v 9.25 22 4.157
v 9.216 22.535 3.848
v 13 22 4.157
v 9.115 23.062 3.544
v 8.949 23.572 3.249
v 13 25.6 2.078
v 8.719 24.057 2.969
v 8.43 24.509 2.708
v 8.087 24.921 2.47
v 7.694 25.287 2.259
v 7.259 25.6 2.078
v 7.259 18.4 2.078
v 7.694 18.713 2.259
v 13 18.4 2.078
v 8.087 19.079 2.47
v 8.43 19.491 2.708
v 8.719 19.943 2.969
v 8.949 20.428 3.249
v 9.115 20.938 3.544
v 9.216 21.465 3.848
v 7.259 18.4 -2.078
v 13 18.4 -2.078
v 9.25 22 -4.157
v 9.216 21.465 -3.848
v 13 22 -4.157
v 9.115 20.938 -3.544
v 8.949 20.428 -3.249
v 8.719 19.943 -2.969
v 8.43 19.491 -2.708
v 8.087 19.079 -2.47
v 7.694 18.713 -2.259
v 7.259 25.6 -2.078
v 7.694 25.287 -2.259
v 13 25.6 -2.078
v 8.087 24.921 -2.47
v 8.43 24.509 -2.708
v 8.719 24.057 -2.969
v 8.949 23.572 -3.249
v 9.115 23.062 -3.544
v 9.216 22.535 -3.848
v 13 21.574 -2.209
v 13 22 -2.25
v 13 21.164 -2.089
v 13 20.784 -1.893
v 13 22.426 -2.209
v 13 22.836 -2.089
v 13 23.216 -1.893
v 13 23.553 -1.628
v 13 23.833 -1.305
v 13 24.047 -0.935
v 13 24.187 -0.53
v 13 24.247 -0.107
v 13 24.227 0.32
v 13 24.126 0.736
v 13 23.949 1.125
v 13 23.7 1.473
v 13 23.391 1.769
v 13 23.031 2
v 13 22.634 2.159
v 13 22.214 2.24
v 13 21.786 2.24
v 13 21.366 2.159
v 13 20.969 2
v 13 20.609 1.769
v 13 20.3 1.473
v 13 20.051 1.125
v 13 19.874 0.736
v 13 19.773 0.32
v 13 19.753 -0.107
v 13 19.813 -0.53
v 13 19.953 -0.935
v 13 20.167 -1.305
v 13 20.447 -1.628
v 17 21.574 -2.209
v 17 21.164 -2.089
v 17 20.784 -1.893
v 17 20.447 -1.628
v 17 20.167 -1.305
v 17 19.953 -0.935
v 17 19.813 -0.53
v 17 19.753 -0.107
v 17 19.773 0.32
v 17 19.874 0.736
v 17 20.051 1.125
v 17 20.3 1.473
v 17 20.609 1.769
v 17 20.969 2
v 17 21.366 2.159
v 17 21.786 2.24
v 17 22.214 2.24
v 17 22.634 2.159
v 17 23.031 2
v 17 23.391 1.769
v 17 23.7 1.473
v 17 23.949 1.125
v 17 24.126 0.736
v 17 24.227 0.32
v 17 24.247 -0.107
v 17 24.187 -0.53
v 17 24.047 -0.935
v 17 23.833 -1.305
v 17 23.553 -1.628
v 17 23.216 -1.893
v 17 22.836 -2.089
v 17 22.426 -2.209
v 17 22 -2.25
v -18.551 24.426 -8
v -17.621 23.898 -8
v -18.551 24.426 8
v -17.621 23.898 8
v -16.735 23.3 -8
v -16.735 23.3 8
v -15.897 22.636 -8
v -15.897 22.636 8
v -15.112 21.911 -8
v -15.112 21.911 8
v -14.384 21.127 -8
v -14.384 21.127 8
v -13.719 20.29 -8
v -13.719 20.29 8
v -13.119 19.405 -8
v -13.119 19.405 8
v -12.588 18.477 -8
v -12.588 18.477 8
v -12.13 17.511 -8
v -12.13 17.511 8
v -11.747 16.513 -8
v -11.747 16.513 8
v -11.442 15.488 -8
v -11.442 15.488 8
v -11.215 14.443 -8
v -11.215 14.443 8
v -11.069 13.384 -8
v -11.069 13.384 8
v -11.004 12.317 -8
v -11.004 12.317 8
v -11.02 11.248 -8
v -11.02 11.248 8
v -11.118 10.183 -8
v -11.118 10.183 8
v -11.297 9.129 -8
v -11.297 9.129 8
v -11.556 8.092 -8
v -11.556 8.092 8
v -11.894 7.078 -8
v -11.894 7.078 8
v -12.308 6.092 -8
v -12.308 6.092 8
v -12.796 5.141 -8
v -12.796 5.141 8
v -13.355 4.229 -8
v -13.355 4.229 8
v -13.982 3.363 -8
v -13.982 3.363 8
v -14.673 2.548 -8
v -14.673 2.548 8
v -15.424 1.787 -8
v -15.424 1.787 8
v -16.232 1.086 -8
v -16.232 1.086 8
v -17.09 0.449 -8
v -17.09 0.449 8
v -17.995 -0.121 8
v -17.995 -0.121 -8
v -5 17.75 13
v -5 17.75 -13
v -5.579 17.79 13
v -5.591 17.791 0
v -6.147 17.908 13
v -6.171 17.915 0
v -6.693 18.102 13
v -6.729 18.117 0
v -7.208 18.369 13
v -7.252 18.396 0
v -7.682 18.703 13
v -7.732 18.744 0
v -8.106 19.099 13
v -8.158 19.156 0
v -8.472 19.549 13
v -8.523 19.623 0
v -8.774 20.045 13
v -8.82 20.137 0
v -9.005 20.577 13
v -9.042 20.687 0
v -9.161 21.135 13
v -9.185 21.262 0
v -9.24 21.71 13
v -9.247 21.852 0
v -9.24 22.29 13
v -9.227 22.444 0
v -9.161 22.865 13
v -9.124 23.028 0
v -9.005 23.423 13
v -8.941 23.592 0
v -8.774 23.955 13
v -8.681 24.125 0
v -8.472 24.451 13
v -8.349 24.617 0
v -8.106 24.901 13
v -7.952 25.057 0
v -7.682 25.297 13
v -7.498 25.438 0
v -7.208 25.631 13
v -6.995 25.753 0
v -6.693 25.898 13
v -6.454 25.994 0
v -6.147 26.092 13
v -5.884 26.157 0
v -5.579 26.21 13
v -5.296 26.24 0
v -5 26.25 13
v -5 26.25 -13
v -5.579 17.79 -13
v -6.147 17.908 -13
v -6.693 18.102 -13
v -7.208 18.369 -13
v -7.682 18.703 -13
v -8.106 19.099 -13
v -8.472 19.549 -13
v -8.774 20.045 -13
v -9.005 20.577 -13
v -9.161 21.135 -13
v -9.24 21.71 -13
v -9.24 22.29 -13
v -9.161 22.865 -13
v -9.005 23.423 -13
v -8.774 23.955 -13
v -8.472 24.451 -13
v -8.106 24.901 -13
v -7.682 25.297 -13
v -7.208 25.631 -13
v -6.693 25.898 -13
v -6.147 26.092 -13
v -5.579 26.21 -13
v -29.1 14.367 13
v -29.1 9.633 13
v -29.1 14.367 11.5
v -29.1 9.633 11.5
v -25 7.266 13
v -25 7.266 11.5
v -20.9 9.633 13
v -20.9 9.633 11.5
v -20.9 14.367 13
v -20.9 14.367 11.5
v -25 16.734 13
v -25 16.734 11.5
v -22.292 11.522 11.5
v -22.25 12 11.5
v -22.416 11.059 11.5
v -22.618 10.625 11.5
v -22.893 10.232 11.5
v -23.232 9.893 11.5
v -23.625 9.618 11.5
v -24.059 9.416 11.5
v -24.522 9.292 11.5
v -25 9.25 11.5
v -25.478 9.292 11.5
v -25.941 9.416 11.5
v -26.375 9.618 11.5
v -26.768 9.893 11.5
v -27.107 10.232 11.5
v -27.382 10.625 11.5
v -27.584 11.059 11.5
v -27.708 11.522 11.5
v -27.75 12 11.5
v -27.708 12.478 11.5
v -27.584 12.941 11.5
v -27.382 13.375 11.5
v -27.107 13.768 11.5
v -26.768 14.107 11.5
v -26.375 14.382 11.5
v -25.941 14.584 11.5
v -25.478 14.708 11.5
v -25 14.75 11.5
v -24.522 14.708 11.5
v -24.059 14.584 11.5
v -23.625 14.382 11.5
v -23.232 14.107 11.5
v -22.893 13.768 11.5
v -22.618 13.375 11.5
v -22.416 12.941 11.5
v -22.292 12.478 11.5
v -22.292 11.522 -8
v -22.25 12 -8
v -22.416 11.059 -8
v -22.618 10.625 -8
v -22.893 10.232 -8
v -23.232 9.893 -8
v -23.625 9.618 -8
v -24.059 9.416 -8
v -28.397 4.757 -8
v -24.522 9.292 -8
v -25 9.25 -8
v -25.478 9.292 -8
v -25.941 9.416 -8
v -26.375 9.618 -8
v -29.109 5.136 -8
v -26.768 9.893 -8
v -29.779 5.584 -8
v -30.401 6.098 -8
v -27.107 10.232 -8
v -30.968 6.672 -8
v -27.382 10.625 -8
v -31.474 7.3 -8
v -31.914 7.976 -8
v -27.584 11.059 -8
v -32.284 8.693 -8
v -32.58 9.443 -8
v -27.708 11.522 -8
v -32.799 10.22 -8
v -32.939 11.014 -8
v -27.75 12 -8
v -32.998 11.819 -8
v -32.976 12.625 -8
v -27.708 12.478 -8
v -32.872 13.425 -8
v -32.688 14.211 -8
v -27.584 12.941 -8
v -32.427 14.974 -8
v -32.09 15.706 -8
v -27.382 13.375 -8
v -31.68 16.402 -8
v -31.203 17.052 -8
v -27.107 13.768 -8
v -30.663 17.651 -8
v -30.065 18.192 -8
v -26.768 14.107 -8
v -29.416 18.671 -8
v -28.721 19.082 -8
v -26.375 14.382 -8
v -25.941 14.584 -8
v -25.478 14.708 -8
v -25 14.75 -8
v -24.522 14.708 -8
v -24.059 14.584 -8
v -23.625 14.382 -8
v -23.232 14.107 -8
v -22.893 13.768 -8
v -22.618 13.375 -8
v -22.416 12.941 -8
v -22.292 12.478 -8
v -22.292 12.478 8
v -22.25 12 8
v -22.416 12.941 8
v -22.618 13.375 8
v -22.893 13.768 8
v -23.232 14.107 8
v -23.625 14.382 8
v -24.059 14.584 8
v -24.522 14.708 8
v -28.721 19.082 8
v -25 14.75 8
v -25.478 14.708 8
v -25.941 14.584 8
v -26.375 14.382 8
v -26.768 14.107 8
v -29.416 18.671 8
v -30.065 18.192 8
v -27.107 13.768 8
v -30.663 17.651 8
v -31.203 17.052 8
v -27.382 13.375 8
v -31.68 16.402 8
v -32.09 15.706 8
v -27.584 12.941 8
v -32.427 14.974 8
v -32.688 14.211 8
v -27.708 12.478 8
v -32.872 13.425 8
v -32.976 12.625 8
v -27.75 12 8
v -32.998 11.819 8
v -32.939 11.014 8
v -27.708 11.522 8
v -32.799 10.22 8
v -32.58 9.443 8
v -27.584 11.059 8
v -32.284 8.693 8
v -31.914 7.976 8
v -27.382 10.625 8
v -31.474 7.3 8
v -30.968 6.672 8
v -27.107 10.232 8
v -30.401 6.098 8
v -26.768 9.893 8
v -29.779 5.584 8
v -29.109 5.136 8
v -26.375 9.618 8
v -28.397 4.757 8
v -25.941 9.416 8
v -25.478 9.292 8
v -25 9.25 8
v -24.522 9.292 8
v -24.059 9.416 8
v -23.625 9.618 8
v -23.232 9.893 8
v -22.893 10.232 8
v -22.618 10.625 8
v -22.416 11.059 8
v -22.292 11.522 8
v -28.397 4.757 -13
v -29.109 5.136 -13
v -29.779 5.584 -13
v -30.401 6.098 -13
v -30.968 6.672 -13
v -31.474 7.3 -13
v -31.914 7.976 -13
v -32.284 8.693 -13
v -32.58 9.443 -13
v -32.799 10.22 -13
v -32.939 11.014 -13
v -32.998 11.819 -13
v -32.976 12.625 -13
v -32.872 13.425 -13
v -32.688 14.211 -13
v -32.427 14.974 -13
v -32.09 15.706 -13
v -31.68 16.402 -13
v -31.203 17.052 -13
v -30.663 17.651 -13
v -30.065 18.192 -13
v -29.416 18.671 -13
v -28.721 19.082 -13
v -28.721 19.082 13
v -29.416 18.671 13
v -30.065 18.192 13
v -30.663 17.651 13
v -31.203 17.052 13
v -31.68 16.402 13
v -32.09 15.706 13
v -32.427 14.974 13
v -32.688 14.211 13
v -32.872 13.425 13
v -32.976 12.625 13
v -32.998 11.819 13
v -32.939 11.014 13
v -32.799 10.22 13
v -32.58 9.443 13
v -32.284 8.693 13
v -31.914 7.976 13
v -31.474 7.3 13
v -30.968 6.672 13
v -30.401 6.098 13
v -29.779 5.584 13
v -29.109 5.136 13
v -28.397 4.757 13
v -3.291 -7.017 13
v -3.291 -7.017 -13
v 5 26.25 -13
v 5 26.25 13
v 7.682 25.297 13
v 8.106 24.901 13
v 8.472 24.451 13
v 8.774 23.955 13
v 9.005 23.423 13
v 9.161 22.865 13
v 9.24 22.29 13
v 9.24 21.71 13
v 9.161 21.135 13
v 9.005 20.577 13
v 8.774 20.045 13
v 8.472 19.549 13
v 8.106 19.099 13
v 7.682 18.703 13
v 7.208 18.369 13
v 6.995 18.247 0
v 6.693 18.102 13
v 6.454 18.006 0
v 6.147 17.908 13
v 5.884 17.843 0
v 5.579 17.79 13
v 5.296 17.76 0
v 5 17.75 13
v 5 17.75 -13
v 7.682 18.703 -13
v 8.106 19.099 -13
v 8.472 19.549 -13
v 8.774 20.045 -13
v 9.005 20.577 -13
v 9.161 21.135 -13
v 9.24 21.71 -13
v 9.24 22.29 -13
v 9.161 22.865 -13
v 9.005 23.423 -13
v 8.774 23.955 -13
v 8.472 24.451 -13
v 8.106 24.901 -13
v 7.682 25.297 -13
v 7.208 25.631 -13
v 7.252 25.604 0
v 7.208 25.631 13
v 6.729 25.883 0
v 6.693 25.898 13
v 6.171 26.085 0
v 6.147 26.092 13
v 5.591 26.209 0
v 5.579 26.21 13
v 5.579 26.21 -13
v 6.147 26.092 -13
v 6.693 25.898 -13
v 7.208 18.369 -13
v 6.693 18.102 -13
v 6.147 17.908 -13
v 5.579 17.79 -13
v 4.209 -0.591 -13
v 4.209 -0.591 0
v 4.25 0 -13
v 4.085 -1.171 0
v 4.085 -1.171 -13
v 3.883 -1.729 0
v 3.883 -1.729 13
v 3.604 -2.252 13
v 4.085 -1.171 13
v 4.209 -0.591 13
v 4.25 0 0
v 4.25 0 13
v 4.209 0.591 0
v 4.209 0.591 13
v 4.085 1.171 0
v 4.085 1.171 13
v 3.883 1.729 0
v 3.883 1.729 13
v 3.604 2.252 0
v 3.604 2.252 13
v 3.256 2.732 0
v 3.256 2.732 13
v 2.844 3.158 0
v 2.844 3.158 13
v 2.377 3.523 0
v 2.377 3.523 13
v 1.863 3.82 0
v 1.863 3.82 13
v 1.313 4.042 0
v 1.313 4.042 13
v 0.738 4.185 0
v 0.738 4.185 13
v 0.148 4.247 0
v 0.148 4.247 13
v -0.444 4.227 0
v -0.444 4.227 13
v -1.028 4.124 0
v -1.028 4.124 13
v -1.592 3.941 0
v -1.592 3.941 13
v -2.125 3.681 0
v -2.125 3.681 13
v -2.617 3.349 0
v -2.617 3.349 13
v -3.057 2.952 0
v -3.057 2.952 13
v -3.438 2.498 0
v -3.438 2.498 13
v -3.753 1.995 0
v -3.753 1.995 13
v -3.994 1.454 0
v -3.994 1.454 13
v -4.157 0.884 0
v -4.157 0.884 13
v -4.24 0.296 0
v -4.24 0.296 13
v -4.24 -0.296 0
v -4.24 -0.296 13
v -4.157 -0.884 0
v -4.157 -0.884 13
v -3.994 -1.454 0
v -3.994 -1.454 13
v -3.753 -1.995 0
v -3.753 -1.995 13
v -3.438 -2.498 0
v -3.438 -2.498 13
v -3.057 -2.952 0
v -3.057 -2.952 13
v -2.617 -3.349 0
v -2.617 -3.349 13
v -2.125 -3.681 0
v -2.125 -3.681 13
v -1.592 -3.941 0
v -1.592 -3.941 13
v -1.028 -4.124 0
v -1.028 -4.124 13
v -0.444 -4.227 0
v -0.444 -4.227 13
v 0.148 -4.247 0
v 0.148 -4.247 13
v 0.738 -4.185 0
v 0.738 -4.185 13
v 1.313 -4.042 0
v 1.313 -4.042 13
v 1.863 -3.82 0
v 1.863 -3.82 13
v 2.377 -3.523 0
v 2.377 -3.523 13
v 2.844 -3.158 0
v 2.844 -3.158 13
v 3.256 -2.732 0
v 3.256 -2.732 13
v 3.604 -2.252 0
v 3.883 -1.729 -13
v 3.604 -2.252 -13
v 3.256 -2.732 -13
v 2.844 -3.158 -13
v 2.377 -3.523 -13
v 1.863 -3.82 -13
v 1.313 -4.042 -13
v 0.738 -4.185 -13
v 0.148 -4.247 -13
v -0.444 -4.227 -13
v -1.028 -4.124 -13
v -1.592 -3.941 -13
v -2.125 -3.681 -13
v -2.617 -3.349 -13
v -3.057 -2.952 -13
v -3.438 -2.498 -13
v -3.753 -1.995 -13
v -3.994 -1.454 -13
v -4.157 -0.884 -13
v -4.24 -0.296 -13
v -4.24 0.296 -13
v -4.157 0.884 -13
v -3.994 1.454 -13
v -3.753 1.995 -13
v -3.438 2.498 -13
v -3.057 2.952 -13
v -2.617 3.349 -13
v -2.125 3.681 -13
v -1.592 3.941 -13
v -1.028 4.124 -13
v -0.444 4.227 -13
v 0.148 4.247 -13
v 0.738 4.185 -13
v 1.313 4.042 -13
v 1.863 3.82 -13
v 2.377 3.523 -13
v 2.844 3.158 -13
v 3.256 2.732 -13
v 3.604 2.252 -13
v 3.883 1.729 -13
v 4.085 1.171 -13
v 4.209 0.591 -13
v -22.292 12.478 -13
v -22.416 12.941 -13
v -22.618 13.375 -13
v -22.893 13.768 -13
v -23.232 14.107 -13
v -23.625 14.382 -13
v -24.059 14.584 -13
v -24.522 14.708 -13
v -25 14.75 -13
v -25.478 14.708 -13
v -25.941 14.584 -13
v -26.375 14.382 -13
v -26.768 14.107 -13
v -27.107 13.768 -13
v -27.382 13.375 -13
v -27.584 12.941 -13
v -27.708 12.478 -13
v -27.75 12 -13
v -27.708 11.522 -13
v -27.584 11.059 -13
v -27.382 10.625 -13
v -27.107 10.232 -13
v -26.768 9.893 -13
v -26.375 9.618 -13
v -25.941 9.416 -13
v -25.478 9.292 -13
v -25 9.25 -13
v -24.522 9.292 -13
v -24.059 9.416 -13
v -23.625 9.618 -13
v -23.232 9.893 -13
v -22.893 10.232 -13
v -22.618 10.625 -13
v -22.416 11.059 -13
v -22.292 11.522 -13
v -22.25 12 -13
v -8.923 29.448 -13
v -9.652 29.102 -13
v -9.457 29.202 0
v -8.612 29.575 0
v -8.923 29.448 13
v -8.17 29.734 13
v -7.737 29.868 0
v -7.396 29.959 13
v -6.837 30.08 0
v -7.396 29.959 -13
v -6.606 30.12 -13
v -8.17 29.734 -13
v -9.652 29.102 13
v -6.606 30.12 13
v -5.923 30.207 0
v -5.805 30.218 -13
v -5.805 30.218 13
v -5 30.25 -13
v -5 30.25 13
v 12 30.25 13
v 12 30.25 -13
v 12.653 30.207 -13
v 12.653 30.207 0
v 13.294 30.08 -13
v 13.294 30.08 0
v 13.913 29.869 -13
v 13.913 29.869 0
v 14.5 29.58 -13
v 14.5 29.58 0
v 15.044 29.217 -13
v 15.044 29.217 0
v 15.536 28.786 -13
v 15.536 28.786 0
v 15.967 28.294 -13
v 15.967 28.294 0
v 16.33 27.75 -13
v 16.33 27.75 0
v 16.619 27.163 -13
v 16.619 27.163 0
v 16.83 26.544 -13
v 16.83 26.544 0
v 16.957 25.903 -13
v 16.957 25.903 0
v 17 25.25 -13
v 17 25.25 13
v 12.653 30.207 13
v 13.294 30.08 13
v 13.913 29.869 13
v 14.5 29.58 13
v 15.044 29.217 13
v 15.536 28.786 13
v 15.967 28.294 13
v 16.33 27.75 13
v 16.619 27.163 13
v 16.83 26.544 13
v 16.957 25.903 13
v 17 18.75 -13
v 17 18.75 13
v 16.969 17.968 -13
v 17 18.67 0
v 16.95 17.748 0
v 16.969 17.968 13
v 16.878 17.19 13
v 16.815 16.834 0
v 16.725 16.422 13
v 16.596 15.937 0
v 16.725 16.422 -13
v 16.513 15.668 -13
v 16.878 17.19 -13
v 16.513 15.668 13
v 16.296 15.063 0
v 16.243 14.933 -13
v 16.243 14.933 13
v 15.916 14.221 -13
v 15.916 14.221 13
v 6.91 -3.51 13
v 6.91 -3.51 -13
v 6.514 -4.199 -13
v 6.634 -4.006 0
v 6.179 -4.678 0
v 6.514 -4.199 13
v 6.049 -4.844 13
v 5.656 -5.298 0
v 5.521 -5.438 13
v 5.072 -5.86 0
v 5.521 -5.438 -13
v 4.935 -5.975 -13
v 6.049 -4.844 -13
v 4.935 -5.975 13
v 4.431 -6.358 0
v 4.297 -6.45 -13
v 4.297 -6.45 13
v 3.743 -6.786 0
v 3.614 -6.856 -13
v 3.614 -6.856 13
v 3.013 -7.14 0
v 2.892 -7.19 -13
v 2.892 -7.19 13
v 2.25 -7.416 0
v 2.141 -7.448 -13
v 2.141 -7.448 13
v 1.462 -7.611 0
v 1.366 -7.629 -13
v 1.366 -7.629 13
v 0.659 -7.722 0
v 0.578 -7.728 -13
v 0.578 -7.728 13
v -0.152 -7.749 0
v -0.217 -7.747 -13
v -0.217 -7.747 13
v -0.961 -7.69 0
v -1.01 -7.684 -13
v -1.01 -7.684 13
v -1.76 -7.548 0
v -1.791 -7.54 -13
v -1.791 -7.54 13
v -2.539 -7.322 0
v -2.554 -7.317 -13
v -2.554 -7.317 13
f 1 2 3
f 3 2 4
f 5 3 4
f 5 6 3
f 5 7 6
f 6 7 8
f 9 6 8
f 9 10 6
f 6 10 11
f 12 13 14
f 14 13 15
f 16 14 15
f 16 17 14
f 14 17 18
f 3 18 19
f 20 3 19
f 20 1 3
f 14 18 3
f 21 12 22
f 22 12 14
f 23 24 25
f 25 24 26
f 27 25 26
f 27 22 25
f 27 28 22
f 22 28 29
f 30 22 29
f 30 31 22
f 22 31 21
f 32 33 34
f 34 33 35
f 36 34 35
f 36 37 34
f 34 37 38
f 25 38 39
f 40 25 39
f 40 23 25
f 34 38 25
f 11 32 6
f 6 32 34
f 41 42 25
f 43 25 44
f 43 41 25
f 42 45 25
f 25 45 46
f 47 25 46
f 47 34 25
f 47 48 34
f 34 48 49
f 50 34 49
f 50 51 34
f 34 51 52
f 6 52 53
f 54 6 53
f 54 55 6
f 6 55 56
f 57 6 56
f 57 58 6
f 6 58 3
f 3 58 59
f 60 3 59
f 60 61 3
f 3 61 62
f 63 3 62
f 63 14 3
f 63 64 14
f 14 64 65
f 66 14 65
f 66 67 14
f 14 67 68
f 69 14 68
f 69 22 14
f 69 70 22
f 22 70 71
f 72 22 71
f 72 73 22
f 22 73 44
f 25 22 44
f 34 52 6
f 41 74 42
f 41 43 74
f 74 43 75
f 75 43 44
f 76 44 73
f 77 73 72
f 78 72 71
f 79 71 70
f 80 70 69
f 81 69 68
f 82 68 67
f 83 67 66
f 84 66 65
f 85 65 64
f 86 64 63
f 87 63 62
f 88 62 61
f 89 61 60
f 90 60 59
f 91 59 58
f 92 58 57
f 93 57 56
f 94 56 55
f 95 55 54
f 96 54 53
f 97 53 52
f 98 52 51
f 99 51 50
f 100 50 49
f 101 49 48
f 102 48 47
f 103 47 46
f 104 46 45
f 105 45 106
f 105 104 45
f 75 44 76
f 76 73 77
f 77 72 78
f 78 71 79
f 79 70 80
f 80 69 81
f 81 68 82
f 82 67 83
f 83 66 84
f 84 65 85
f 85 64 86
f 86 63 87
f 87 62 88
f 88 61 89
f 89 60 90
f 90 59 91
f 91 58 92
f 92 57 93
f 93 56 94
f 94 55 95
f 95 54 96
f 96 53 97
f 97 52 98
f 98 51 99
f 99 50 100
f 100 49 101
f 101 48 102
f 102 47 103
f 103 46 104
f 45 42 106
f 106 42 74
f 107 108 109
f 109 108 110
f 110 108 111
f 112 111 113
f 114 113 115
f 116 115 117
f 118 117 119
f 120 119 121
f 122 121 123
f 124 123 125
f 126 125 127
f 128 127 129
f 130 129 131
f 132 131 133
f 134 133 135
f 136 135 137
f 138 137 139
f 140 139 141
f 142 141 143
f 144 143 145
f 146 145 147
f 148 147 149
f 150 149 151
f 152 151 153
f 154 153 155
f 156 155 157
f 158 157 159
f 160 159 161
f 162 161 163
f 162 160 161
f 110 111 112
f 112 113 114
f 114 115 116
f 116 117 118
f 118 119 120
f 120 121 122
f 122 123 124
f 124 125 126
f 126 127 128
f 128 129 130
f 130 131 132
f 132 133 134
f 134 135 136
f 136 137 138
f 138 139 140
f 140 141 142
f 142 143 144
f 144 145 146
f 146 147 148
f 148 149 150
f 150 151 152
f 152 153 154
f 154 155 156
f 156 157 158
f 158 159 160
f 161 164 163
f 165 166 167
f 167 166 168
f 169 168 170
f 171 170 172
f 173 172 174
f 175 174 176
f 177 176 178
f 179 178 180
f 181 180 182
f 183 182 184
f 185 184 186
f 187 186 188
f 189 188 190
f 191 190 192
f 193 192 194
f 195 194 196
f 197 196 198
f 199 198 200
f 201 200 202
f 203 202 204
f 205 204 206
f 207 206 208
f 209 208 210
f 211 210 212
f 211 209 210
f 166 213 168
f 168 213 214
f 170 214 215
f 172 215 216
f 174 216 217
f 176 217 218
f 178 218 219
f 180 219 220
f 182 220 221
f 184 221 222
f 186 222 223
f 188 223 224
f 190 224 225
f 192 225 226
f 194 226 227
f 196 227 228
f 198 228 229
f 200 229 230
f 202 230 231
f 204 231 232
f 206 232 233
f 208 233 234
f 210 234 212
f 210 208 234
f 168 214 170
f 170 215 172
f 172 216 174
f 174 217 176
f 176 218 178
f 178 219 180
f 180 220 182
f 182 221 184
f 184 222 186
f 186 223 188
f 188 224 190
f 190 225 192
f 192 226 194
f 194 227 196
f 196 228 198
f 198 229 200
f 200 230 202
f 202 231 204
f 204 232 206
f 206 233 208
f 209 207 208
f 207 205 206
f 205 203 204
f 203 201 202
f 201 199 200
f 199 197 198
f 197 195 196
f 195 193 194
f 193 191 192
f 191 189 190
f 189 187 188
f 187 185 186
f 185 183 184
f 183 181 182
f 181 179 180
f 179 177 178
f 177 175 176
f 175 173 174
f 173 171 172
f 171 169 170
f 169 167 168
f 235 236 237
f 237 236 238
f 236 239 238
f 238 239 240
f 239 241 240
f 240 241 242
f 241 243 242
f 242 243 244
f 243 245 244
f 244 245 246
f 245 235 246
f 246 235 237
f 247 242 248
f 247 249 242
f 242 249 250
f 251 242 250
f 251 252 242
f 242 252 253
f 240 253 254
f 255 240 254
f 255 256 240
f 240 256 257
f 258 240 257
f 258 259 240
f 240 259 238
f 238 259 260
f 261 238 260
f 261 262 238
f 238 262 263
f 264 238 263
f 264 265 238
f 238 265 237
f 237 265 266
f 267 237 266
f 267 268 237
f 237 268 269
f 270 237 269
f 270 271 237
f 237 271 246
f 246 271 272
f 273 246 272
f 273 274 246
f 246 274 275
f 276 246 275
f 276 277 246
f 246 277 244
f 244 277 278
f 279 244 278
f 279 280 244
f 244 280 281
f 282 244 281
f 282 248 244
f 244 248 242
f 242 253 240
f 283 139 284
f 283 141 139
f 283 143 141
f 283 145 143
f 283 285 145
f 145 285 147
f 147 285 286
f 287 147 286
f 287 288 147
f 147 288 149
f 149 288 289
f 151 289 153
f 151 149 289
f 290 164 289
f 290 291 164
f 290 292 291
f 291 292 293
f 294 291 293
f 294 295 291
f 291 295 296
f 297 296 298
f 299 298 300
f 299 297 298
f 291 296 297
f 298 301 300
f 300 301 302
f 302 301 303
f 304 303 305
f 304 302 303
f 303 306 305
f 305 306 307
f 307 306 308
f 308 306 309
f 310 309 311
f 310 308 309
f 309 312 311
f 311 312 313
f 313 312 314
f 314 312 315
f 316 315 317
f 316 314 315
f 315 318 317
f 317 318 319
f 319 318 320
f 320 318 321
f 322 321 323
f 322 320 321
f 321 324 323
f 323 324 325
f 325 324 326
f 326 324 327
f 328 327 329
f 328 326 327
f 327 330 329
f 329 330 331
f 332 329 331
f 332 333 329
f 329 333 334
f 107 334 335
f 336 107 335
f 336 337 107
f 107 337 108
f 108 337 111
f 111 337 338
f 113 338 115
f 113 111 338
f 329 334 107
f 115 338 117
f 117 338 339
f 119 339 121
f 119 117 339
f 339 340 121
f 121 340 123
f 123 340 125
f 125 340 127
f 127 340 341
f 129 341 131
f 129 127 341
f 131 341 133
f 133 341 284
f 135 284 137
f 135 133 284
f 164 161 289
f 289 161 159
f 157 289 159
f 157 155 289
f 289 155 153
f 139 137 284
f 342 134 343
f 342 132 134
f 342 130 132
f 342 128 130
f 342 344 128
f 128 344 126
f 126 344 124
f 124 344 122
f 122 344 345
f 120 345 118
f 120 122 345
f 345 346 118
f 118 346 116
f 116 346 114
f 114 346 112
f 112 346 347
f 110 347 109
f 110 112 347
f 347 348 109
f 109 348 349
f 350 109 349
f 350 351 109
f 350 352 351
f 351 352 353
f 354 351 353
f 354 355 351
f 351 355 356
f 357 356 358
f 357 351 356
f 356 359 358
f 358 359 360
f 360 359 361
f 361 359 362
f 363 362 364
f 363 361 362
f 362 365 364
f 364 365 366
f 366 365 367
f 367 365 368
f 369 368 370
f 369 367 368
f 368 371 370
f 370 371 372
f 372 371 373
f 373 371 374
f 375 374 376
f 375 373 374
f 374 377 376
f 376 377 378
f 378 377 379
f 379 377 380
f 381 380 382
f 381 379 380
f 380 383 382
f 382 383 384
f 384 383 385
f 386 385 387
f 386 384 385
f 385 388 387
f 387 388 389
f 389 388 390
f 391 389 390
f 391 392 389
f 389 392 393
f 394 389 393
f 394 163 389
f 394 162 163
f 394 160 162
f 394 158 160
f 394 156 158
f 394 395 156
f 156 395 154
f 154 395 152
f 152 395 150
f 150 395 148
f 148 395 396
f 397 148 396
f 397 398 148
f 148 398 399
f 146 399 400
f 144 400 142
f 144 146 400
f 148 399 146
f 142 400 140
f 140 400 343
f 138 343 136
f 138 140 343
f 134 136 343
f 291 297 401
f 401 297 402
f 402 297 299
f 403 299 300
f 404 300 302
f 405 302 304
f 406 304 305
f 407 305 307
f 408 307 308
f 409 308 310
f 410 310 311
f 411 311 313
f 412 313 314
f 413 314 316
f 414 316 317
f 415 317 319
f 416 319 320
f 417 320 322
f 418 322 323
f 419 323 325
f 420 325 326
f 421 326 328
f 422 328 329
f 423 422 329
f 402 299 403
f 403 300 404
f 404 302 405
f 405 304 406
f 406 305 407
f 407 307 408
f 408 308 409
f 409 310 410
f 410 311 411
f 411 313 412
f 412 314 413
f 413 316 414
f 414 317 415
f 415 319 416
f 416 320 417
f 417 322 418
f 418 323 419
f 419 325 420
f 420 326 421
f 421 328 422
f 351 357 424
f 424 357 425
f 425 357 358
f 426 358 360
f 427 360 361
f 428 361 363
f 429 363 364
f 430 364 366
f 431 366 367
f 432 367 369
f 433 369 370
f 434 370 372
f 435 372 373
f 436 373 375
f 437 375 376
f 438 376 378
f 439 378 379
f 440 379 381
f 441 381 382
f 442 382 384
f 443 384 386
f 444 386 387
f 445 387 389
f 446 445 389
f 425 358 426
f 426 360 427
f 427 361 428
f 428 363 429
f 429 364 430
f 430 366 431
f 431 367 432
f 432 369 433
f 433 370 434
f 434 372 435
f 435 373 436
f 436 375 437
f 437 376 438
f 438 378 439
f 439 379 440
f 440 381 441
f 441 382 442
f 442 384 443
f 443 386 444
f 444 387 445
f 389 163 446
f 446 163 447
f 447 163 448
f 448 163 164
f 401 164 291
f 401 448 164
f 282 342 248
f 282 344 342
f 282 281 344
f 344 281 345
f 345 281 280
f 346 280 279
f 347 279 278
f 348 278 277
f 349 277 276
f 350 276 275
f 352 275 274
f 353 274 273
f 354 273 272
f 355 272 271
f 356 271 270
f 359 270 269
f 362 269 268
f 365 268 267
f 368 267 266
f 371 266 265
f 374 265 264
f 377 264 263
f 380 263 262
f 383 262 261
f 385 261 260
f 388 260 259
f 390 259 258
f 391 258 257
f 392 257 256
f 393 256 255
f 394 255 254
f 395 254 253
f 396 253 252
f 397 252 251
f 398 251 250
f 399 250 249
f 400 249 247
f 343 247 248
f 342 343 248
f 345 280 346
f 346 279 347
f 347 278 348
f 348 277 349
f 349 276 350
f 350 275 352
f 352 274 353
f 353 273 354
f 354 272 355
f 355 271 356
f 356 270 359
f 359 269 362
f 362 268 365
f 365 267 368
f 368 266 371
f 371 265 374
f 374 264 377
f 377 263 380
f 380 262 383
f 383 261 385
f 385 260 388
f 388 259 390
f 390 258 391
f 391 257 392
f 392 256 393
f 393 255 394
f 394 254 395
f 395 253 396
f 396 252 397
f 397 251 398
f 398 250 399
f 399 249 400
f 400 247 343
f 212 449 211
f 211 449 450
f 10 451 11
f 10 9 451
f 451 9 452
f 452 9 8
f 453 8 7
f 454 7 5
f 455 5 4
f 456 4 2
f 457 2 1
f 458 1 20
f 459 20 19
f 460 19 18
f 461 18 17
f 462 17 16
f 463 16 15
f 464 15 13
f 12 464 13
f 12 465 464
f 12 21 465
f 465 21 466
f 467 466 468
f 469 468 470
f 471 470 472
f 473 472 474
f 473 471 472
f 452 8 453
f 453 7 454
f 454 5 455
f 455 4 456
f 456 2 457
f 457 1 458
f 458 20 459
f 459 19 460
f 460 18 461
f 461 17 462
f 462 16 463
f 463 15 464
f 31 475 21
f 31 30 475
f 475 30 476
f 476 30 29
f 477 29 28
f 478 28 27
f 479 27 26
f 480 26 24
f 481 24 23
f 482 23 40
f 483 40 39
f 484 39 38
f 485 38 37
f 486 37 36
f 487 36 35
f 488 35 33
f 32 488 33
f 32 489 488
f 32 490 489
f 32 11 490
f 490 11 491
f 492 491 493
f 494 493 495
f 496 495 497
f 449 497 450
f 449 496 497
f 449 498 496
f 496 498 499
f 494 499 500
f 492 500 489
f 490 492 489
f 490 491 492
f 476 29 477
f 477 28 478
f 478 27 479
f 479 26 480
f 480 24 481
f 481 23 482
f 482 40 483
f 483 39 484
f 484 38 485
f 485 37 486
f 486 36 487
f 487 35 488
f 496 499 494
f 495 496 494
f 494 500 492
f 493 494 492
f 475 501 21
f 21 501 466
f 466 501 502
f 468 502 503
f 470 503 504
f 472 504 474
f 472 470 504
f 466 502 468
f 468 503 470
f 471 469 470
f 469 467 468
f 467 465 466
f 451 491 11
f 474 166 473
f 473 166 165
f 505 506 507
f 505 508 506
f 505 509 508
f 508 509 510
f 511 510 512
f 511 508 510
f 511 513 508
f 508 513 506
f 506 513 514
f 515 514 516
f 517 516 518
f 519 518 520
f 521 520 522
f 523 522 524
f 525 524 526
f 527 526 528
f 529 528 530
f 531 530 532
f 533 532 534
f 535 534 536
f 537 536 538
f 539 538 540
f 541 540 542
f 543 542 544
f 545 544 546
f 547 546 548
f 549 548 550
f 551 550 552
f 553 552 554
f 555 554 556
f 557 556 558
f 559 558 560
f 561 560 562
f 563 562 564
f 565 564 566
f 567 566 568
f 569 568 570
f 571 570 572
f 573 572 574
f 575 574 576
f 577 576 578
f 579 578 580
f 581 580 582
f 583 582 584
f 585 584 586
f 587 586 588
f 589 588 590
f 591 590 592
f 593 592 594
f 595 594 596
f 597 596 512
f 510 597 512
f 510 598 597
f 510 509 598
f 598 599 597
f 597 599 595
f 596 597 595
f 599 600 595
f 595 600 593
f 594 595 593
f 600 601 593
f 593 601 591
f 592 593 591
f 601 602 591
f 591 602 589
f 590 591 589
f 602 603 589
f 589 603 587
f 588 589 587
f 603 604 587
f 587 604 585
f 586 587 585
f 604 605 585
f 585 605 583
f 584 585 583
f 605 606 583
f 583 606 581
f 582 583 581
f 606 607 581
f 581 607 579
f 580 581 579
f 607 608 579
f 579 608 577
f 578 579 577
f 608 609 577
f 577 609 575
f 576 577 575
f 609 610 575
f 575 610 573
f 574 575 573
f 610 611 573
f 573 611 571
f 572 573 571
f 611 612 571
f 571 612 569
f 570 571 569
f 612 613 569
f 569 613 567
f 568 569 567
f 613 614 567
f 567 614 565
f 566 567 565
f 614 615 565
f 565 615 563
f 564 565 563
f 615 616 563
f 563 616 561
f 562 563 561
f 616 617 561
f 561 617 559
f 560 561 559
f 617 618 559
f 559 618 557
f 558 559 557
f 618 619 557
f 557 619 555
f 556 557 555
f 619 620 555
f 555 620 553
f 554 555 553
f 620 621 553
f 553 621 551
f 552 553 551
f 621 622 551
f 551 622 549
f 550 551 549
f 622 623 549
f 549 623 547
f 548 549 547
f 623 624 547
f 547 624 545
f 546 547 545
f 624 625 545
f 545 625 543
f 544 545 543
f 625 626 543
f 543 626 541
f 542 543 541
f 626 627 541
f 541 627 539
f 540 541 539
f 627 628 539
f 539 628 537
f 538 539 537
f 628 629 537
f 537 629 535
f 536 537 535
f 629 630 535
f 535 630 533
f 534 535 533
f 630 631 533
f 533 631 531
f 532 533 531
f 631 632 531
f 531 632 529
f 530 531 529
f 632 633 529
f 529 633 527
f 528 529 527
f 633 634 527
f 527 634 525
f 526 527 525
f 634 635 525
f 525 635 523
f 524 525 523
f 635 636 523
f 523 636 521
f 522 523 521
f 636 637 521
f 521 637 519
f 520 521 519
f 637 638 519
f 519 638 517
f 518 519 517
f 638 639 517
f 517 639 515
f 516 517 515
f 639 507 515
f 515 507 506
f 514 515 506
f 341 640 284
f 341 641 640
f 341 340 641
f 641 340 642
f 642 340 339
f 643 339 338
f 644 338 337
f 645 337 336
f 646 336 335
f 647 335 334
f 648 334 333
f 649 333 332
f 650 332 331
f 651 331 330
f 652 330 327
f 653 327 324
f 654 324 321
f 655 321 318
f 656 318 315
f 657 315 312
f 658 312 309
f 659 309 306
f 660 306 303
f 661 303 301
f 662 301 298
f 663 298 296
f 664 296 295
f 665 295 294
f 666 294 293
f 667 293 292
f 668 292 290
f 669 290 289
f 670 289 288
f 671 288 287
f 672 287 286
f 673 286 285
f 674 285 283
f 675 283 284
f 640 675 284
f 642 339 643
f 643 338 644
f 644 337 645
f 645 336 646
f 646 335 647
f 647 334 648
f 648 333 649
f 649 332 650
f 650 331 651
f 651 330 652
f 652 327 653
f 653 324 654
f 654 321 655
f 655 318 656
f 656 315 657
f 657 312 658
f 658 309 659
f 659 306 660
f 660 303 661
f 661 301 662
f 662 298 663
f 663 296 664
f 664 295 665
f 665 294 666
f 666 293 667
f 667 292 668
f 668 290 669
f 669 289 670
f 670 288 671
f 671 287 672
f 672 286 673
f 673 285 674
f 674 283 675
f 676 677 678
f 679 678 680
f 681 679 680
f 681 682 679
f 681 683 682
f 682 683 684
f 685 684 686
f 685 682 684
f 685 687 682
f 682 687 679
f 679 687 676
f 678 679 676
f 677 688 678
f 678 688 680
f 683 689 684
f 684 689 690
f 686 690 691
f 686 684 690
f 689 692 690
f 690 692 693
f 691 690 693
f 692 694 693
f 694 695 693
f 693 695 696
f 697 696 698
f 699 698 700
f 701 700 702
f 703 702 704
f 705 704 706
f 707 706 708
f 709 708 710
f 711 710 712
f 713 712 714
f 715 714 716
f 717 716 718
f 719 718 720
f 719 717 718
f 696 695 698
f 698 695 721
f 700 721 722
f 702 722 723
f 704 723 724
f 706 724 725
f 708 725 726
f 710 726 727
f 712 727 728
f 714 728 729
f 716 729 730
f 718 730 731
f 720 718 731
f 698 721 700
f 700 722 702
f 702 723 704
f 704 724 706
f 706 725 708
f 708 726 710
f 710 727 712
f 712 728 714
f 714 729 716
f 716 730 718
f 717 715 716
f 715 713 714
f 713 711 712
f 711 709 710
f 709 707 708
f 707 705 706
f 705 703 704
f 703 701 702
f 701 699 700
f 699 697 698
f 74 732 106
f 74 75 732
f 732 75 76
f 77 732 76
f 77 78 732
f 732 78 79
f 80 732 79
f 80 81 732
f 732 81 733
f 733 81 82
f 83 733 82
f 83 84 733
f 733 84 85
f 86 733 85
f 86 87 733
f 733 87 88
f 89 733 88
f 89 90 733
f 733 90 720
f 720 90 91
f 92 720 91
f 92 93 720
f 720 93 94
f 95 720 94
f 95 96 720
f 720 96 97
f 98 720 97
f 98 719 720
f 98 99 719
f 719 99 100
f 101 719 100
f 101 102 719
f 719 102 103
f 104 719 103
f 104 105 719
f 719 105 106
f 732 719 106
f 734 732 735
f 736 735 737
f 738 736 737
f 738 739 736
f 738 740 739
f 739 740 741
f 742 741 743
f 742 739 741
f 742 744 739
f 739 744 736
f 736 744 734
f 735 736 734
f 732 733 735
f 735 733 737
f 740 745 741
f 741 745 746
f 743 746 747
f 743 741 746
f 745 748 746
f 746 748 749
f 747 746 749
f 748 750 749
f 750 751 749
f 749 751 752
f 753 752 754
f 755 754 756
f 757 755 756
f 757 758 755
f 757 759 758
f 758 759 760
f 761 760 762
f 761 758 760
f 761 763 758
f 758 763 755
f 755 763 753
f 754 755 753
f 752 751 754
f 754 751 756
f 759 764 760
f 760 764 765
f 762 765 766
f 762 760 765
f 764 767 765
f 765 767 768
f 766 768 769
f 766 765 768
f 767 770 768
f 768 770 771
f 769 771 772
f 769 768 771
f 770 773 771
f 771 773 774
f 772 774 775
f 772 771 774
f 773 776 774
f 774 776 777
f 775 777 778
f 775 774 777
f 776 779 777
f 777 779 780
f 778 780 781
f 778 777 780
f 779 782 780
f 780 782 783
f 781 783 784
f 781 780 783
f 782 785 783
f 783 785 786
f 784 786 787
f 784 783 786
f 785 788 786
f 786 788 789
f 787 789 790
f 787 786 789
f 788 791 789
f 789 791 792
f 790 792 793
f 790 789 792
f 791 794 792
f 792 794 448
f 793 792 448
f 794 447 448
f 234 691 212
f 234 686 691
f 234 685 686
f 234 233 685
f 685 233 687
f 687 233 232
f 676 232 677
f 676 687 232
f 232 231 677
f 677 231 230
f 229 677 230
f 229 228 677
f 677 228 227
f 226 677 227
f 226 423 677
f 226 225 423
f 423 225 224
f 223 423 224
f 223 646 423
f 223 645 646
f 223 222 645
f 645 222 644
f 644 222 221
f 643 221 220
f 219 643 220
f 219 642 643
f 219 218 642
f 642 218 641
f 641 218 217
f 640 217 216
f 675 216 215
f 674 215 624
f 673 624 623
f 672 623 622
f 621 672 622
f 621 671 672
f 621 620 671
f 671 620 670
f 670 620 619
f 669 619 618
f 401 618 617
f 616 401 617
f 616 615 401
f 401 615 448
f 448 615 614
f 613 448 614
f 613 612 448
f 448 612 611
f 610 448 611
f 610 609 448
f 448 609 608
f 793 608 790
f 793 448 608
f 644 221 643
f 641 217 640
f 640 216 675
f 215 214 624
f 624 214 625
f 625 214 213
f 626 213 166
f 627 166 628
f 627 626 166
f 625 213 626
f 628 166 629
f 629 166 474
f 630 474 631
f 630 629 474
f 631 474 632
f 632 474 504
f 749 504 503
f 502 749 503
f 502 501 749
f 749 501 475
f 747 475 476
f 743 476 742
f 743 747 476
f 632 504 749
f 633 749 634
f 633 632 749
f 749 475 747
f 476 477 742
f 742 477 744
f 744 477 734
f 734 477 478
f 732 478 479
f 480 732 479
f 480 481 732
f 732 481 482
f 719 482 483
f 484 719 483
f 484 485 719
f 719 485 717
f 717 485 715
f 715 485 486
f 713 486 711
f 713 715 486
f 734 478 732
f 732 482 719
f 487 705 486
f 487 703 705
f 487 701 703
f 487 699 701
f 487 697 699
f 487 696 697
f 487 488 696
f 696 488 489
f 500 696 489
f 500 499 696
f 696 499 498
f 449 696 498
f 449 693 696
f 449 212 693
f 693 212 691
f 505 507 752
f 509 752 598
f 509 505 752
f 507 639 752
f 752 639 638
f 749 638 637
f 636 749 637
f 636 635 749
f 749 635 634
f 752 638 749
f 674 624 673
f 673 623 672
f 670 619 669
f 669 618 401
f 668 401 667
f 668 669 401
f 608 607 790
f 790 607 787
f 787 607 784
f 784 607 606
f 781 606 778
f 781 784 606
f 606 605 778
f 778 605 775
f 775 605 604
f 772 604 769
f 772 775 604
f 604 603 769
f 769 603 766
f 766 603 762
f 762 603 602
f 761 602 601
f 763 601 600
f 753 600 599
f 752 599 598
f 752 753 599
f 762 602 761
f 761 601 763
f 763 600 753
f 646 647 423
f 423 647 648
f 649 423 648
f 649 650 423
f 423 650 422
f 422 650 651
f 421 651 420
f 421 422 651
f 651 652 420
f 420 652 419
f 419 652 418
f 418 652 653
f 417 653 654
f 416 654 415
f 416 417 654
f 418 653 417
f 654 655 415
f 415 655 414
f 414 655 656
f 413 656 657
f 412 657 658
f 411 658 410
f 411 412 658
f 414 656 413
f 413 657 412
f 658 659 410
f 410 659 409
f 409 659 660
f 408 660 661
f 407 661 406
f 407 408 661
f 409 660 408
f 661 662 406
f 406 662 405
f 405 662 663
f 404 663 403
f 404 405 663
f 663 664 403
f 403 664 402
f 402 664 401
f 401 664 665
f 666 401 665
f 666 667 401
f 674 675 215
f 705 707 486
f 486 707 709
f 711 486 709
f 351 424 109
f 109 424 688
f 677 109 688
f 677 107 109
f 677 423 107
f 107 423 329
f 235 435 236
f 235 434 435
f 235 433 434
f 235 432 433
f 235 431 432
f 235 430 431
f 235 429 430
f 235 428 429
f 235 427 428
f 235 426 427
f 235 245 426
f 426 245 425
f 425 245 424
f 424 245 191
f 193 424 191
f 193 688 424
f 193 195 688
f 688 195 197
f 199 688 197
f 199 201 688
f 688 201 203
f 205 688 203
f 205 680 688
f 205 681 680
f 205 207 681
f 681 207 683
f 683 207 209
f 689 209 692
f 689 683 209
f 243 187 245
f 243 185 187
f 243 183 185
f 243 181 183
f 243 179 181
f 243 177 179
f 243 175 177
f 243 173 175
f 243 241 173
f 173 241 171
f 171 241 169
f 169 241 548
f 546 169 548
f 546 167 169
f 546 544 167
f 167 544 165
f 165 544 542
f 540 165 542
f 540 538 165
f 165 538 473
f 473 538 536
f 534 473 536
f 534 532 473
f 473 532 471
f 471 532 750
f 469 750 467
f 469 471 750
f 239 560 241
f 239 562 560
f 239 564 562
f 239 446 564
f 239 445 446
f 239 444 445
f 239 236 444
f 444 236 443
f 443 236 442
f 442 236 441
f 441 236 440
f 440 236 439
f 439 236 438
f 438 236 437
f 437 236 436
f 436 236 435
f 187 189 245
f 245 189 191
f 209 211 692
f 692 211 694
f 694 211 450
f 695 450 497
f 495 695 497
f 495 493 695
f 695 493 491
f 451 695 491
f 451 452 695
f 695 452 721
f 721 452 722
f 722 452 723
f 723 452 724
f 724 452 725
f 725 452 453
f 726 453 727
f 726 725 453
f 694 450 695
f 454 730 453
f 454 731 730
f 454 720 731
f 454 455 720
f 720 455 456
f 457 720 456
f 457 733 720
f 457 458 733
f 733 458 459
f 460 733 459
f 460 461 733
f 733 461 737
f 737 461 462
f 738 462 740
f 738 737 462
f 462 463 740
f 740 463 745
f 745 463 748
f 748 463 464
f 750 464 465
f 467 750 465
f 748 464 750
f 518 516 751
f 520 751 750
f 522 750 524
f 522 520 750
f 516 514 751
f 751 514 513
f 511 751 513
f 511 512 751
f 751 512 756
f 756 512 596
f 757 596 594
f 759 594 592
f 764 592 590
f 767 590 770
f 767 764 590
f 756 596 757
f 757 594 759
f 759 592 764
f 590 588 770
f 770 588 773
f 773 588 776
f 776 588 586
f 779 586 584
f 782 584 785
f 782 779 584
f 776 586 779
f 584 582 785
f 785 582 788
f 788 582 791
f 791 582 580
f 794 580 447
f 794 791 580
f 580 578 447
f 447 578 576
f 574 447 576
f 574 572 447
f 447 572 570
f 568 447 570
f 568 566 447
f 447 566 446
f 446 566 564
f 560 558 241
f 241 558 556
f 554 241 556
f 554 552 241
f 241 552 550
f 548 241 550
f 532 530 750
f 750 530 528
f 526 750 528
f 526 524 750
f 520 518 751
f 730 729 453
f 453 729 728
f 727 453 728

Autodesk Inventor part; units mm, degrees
ref_plane "YZ Plane" through (0, 0, 0) normal (1, 0, 0) x (0, 1, 0)
ref_plane "XZ Plane" through (0, 0, 0) normal (0, 1, 0) x (-1, 0, 0)
sketch "Szkic1" plane through (0, 0, 0) normal (0, 0, 1) x (1, 0, 0)
  circle A0 centre (0, 0) radius 4.25
  line L0 (0, 0) -> (0, 22) construction
  line L1 (-5, 22) -> (5, 22) construction
  line L2 (-5, 17.75) -> (5, 17.75)
  arc A1 (5, 17.75) -> (5, 26.25) centre (5, 22) ccw
  line L3 (5, 26.25) -> (-5, 26.25)
  arc A2 (-5, 26.25) -> (-5, 17.75) centre (-5, 22) ccw
  circle A3 centre (-25, 12) radius 8 construction
  line L4 (-5, 22) -> (-25, 22) construction
  line L5 (-25, 22) -> (-25, 12) construction
  circle A4 centre (-25, 12) radius 2.75
  line L6 (-9.6516, 29.1023) -> (-28.7213, 19.0818)
  arc A5 (-28.7213, 19.0818) -> (-28.3967, 4.7569) centre (-25, 12) ccw
  line L7 (-28.3967, 4.7569) -> (-3.2905, -7.0168)
  arc A6 (-3.2905, -7.0168) -> (6.9098, -3.5096) centre (0, 0) ccw
  line L8 (6.9098, -3.5096) -> (15.9158, 14.2214)
  arc A7 (15.9158, 14.2214) -> (17, 18.75) centre (7, 18.75) ccw
  line L9 (17, 18.75) -> (17, 25.25)
  arc A8 (17, 25.25) -> (12, 30.25) centre (12, 25.25) ccw
  line L10 (12, 30.25) -> (-5, 30.25)
  arc A9 (-5, 30.25) -> (-9.6516, 29.1023) centre (-5, 20.25) ccw
  line L11 (-25, 16.7343) -> (-20.9, 14.3671) construction
  line L12 (-20.9, 14.3671) -> (-20.9, 9.6329) construction
  line L13 (-20.9, 9.6329) -> (-25, 7.2657) construction
  line L14 (-25, 7.2657) -> (-29.1, 9.6329) construction
  line L15 (-29.1, 9.6329) -> (-29.1, 14.3671) construction
  line L16 (-29.1, 14.3671) -> (-25, 16.7343) construction
  line L17 (-5, 22) -> (-5, 30.25) construction
  circle A10 centre (-25, 12) radius 14 construction
  arc A11 (-17.9946, -0.1212) -> (-18.5508, 24.4261) centre (-25, 12) ccw
  dimension "d16" = 28
  dimension "d0" = 8.5
  dimension "d1" = 22
  dimension "d2" = 10
  dimension "d3" = 4.25
  dimension "d4" = 16
  dimension "d5" = 10
  dimension "d6" = 20
  dimension "d7" = 5.5
  dimension "d8" = 12
  dimension "d9" = 4
  dimension "d10" = 7.75
  dimension "d11" = 8.2
  dimension "d12" = 8
  dimension "d13" = 5
  dimension "d14" = 10
  dimension "d15" = 10
extrude "Wyciągnięcie proste1" add sketch "Szkic1" along normal mid plane 26
extrude "Wyciągnięcie proste2" cut sketch "Szkic1" along normal mid plane 16 contours A11 L7 A5 L6
sketch "Szkic2" plane through (0, 0, 13) normal (0, 0, 1) x (1, 0, 0)
  circle A0 centre (-25, 12) radius 2.75 projected
  line L0 (-29.1, 14.3671) -> (-25, 16.7343) projected
  line L1 (-29.1, 9.6329) -> (-29.1, 14.3671) projected
  line L2 (-25, 7.2657) -> (-29.1, 9.6329) projected
  line L3 (-20.9, 9.6329) -> (-25, 7.2657) projected
  line L4 (-20.9, 14.3671) -> (-20.9, 9.6329) projected
  line L5 (-25, 16.7343) -> (-20.9, 14.3671) projected
extrude "Wyciągnięcie proste3" cut sketch "Szkic2" against normal blind 1.5
sketch "Szkic3" plane through (17, 18.75, 13) normal (1, 0, 0) x (0, 0, -1)
  line L0 (26, 6.5) -> (0, 6.5) projected
  line L1 (0, 0) -> (26, 6.5) construction
  line L2 (0, 6.5) -> (26, 0) construction
  circle A0 centre (13, 3.25) radius 2.25
  line L3 (13, 3.25) -> (13, 11.5) construction
  line L4 (10.9215, 6.85) -> (15.0785, 6.85)
  line L5 (15.0785, 6.85) -> (17.1569, 3.25)
  line L6 (17.1569, 3.25) -> (15.0785, -0.35)
  line L7 (15.0785, -0.35) -> (10.9215, -0.35)
  line L8 (10.9215, -0.35) -> (8.8431, 3.25)
  line L9 (8.8431, 3.25) -> (10.9215, 6.85)
  line L10 (26, 11.5) -> (0, 11.5) projected
  line L11 (26, 11.5) -> (0, 11.5) projected
  point P0 (13, -18.75)
  point P1 (13, 6.85)
  dimension "d23" = 4.5
  dimension "d24" = 7.2
ref_plane "Płaszczyzna konstrukcyjna1" through (13, 18.75, 13) normal (1, 0, 0) x (0, 0, -1)
extrude "Wyciągnięcie proste4" cut sketch "Szkic3" against normal up to next contours A0
sketch "Szkic4" plane through (13, 18.75, 13) normal (1, 0, 0) x (0, 0, -1)
  line L0 (10.9215, -0.35) -> (8.8431, 3.25) projected
  line L1 (15.0785, -0.35) -> (10.9215, -0.35) projected
  line L2 (17.1569, 3.25) -> (15.0785, -0.35) projected
  line L3 (15.0785, 6.85) -> (17.1569, 3.25) projected
  line L4 (10.9215, 6.85) -> (15.0785, 6.85) projected
  line L5 (8.8431, 3.25) -> (10.9215, 6.85) projected
  point P0 (13, -18.75)
extrude "Wyciągnięcie proste5" cut sketch "Szkic4" against normal up to surface
properties part number "Y_tensioner"
